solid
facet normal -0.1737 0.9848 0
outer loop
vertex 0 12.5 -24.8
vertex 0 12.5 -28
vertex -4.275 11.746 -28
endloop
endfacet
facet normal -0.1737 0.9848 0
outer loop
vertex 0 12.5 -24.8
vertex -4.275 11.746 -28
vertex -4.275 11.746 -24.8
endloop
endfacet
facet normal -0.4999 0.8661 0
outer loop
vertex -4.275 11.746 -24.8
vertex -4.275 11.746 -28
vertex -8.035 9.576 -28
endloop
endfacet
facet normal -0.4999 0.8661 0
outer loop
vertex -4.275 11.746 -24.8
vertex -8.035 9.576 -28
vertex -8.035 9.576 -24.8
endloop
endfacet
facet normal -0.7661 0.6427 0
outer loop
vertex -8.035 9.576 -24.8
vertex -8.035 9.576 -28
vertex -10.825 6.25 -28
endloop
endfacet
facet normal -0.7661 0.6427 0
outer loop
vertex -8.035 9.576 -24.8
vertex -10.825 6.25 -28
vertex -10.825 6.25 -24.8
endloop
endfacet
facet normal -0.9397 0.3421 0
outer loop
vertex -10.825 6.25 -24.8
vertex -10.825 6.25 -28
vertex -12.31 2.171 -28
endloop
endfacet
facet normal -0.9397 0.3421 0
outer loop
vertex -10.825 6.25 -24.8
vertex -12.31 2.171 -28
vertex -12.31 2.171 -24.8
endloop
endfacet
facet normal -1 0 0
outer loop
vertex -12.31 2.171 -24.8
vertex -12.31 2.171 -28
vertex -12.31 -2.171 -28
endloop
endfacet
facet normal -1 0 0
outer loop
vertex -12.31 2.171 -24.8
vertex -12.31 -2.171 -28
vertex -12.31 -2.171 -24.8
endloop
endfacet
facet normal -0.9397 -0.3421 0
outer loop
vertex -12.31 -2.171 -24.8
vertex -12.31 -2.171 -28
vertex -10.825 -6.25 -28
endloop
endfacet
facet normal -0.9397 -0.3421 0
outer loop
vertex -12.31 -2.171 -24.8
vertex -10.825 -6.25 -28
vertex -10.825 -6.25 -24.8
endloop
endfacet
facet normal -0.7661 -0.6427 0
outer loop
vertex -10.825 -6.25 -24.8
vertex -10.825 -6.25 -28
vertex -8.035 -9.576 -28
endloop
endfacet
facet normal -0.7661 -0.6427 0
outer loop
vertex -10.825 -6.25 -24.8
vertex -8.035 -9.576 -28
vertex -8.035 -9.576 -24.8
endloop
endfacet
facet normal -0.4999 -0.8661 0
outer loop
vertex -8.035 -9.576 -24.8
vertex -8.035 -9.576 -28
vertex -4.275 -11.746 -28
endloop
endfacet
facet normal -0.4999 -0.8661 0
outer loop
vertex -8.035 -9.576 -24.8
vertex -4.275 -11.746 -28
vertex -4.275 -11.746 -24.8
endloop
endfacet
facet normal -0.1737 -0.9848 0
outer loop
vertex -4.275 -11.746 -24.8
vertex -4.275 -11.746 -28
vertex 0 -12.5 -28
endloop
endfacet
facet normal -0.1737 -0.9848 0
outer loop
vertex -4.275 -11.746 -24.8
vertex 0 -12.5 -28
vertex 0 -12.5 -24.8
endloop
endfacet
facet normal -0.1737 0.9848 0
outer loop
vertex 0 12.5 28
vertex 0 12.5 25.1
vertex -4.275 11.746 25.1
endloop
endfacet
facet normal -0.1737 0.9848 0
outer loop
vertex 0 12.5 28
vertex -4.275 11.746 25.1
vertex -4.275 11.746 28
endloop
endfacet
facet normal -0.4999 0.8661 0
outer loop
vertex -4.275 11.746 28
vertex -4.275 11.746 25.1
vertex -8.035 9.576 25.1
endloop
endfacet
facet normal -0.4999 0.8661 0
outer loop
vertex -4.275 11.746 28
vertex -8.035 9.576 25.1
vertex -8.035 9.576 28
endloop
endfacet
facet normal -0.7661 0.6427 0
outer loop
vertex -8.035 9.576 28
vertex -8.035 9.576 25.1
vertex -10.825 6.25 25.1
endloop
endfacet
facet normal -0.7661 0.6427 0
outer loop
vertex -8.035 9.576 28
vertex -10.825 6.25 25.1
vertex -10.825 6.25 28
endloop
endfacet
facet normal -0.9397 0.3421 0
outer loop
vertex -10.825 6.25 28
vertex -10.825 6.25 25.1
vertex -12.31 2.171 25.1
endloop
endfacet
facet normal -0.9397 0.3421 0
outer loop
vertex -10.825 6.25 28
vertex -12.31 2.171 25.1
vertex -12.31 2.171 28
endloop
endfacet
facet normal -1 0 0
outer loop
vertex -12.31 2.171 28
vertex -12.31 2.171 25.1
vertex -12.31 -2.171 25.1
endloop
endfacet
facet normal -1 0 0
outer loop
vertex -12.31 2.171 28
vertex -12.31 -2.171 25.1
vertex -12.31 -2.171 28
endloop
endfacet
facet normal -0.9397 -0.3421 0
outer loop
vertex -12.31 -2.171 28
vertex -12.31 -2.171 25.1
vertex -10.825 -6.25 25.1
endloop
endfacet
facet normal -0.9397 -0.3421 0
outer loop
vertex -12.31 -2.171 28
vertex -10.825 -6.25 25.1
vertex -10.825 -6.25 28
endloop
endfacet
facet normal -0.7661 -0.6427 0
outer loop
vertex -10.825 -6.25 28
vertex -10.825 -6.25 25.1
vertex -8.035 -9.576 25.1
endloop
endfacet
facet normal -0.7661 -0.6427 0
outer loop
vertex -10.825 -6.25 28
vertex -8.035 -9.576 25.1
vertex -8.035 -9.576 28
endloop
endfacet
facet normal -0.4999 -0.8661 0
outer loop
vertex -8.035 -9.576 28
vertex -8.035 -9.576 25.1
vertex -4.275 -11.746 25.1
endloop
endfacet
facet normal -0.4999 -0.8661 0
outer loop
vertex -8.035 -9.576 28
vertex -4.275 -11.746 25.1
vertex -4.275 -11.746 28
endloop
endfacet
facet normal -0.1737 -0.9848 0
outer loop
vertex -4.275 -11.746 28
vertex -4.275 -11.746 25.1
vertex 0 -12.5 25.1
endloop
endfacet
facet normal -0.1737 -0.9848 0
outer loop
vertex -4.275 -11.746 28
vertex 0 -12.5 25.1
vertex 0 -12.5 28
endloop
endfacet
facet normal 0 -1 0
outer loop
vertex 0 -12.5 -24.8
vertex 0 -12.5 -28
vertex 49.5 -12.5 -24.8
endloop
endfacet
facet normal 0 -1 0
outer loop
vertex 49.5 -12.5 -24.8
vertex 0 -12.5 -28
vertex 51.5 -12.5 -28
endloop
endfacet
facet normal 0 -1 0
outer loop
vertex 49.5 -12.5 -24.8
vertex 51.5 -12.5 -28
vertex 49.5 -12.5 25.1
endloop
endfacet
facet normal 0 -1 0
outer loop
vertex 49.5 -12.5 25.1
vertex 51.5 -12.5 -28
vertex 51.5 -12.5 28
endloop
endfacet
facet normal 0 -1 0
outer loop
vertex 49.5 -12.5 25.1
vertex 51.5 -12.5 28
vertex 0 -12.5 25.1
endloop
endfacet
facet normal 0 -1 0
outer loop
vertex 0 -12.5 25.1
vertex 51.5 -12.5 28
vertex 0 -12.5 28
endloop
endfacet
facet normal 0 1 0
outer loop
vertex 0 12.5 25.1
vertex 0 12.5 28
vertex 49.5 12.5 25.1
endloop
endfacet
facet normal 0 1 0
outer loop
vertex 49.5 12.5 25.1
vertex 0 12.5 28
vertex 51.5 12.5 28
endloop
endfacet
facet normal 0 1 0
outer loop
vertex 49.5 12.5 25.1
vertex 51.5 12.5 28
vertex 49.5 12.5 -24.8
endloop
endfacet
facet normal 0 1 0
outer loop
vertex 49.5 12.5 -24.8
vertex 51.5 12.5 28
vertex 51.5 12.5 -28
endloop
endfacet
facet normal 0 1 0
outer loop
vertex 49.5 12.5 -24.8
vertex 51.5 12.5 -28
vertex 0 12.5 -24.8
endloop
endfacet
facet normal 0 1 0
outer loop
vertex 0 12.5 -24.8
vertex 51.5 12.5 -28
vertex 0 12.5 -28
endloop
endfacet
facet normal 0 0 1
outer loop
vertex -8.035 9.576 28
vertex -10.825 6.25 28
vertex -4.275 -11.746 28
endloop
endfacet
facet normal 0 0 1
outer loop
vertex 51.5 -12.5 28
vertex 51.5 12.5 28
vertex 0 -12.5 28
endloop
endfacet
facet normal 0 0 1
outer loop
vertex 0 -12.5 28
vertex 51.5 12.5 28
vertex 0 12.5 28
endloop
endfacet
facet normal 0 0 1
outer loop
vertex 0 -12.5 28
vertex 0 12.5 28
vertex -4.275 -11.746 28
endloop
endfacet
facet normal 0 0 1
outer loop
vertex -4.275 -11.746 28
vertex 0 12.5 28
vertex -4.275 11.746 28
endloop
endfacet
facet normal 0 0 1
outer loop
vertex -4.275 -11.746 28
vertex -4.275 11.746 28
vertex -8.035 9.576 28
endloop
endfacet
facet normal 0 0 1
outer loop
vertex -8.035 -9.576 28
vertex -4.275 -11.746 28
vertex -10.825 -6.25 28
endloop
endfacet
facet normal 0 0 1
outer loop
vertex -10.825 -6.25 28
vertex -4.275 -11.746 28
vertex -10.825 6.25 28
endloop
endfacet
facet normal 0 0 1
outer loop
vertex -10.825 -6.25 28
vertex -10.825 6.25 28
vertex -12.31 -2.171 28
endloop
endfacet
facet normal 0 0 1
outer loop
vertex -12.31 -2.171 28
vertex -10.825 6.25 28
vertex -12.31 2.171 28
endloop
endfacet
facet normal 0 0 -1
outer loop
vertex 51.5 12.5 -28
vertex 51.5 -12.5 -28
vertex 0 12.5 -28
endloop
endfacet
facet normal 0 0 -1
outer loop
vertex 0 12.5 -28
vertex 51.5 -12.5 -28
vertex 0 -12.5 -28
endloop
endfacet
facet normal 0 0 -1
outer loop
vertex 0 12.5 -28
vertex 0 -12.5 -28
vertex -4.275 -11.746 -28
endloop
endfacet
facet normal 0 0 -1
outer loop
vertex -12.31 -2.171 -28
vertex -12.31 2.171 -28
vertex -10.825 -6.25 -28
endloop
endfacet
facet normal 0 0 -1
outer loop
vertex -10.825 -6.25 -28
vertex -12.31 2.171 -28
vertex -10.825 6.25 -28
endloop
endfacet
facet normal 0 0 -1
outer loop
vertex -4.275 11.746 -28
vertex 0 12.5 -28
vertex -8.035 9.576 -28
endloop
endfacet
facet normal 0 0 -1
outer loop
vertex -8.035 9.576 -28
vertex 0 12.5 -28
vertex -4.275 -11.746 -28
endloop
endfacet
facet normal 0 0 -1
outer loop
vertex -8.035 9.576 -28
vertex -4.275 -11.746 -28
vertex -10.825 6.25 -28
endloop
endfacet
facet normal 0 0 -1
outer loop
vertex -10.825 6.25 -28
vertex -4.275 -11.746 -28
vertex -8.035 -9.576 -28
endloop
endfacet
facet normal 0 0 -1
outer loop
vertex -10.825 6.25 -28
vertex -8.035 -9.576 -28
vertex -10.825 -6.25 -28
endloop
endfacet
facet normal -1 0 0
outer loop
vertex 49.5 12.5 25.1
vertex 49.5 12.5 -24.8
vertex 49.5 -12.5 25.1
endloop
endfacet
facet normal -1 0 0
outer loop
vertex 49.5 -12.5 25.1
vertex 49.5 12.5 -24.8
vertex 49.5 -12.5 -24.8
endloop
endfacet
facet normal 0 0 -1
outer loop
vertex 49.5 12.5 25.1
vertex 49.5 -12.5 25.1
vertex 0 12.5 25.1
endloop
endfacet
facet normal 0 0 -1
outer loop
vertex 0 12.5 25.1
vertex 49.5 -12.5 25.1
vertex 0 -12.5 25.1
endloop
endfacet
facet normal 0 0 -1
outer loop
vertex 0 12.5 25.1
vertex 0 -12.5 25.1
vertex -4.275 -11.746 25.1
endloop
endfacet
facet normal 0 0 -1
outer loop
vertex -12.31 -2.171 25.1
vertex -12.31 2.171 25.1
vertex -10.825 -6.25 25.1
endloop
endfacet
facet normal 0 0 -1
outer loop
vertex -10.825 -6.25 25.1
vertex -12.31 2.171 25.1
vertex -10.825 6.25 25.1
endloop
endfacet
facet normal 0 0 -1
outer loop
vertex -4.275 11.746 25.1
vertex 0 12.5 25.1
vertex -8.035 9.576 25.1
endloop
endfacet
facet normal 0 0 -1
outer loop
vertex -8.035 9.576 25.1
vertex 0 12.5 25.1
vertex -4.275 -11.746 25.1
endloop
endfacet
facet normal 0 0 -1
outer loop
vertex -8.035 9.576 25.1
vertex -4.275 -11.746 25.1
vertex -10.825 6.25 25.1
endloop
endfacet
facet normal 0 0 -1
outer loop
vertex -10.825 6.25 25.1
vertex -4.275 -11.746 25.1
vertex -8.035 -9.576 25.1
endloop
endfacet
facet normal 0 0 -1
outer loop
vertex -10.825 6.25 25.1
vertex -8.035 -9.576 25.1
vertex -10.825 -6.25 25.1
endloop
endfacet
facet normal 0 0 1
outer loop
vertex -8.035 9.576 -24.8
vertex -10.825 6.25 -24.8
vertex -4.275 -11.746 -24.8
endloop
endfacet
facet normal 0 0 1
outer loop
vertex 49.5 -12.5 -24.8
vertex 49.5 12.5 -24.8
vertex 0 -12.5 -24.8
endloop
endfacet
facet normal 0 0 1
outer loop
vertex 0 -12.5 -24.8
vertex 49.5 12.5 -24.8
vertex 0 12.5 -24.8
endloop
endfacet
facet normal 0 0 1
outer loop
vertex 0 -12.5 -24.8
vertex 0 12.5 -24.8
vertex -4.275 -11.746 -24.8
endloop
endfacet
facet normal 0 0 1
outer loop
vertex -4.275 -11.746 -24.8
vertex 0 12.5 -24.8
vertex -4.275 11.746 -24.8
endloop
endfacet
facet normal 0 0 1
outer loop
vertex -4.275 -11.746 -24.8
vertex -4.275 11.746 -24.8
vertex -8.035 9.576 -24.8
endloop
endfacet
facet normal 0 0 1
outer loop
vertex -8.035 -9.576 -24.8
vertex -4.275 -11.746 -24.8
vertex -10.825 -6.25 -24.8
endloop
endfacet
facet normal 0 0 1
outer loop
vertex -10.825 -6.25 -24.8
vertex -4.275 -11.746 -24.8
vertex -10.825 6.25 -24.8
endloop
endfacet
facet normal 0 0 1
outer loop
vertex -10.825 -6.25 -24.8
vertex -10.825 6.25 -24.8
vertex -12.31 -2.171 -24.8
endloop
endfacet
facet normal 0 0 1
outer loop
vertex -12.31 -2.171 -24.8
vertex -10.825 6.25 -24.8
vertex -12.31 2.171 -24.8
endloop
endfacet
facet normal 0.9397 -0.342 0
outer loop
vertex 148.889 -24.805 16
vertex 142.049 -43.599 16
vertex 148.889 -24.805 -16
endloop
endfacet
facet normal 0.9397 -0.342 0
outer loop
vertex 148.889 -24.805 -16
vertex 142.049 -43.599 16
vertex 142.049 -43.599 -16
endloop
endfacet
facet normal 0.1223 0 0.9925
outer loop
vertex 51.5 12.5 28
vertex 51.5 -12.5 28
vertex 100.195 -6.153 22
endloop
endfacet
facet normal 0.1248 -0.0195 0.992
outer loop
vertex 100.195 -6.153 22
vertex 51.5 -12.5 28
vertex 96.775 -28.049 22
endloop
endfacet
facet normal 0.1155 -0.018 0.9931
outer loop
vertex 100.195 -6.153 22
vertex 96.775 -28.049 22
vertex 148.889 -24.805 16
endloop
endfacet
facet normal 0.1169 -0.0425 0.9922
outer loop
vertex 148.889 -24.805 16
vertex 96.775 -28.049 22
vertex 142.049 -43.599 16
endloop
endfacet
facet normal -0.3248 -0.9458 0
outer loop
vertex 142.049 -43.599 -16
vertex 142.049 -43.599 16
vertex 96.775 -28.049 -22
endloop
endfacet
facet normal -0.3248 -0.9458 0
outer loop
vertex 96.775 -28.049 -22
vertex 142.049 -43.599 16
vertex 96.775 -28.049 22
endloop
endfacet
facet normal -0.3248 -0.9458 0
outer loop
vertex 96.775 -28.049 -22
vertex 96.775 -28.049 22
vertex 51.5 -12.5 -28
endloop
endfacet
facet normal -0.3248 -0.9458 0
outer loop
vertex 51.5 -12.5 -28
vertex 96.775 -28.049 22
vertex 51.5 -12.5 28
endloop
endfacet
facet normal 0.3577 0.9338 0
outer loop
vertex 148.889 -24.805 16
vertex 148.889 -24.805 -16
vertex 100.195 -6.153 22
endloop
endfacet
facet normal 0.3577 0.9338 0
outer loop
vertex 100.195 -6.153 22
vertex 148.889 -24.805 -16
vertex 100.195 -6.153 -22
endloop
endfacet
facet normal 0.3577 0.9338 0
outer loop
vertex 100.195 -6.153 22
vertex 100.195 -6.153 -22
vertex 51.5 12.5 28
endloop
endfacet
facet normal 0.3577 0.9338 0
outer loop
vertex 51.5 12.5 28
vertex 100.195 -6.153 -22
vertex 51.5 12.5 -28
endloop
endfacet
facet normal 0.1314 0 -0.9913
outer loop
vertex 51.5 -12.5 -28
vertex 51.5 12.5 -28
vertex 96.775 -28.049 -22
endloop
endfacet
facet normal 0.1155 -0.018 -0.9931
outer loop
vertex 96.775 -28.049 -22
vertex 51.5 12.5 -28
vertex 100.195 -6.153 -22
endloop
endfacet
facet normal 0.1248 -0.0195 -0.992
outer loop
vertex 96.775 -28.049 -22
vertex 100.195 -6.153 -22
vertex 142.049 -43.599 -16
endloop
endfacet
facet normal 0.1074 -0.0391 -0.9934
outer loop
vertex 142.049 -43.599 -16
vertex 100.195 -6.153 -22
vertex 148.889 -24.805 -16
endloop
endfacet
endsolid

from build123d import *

# Parameters (mm, degrees)
EXTRUDE_1_DEPTH          = 28
CUT_EXTRUDE_1_DEPTH      = 25.1
CUT_EXTRUDE_1_DEPTH_BACK = 24.8
SKETCH_3_W               = 56
SKETCH_3_H               = 25
SKETCH_6_W               = 32
SKETCH_6_H               = 20


with BuildPart() as part:
    # Эскиз1 → Бобышка-Вытянуть1 (new body, symmetric)
    with BuildSketch(Plane.XY):
        with BuildLine():
            Line((0, 12.5), (51.5, 12.5))
            Line((51.5, 12.5), (51.5, -12.5))
            Line((51.5, -12.5), (0, -12.5))
            ThreePointArc((0, -12.5), (-12.5, 0), (0, 12.5))
        make_face()
    extrude(amount=EXTRUDE_1_DEPTH, both=True)

    # Эскиз2 → Вырез-Вытянуть1 (cut, two sides)
    with BuildSketch(Plane.XY) as cut_extrude_1_sk:
        with BuildLine():
            Line((0, 12.5), (49.5, 12.5))
            Line((49.5, 12.5), (49.5, -12.5))
            Line((49.5, -12.5), (0, -12.5))
            ThreePointArc((0, -12.5), (-12.5, 0), (0, 12.5))
        make_face()
    extrude(amount=CUT_EXTRUDE_1_DEPTH, mode=Mode.SUBTRACT)
    extrude(cut_extrude_1_sk.sketch, amount=-CUT_EXTRUDE_1_DEPTH_BACK, mode=Mode.SUBTRACT)

    # Эскиз3 → По сечениям1 section 0
    with BuildSketch(Plane(origin=(51.5, 0, 0), x_dir=(0, 0, -1), z_dir=(1, 0, 0))):
        Rectangle(SKETCH_3_W, SKETCH_3_H)
    # Эскиз6 → По сечениям1 section 1
    with BuildSketch(Plane(origin=(145.469262079, -34.202014333, 0), x_dir=(0, 0, -1), z_dir=(0.939692621, -0.342020143, 0))):
        Rectangle(SKETCH_6_W, SKETCH_6_H)
    loft()


solid = part.part
